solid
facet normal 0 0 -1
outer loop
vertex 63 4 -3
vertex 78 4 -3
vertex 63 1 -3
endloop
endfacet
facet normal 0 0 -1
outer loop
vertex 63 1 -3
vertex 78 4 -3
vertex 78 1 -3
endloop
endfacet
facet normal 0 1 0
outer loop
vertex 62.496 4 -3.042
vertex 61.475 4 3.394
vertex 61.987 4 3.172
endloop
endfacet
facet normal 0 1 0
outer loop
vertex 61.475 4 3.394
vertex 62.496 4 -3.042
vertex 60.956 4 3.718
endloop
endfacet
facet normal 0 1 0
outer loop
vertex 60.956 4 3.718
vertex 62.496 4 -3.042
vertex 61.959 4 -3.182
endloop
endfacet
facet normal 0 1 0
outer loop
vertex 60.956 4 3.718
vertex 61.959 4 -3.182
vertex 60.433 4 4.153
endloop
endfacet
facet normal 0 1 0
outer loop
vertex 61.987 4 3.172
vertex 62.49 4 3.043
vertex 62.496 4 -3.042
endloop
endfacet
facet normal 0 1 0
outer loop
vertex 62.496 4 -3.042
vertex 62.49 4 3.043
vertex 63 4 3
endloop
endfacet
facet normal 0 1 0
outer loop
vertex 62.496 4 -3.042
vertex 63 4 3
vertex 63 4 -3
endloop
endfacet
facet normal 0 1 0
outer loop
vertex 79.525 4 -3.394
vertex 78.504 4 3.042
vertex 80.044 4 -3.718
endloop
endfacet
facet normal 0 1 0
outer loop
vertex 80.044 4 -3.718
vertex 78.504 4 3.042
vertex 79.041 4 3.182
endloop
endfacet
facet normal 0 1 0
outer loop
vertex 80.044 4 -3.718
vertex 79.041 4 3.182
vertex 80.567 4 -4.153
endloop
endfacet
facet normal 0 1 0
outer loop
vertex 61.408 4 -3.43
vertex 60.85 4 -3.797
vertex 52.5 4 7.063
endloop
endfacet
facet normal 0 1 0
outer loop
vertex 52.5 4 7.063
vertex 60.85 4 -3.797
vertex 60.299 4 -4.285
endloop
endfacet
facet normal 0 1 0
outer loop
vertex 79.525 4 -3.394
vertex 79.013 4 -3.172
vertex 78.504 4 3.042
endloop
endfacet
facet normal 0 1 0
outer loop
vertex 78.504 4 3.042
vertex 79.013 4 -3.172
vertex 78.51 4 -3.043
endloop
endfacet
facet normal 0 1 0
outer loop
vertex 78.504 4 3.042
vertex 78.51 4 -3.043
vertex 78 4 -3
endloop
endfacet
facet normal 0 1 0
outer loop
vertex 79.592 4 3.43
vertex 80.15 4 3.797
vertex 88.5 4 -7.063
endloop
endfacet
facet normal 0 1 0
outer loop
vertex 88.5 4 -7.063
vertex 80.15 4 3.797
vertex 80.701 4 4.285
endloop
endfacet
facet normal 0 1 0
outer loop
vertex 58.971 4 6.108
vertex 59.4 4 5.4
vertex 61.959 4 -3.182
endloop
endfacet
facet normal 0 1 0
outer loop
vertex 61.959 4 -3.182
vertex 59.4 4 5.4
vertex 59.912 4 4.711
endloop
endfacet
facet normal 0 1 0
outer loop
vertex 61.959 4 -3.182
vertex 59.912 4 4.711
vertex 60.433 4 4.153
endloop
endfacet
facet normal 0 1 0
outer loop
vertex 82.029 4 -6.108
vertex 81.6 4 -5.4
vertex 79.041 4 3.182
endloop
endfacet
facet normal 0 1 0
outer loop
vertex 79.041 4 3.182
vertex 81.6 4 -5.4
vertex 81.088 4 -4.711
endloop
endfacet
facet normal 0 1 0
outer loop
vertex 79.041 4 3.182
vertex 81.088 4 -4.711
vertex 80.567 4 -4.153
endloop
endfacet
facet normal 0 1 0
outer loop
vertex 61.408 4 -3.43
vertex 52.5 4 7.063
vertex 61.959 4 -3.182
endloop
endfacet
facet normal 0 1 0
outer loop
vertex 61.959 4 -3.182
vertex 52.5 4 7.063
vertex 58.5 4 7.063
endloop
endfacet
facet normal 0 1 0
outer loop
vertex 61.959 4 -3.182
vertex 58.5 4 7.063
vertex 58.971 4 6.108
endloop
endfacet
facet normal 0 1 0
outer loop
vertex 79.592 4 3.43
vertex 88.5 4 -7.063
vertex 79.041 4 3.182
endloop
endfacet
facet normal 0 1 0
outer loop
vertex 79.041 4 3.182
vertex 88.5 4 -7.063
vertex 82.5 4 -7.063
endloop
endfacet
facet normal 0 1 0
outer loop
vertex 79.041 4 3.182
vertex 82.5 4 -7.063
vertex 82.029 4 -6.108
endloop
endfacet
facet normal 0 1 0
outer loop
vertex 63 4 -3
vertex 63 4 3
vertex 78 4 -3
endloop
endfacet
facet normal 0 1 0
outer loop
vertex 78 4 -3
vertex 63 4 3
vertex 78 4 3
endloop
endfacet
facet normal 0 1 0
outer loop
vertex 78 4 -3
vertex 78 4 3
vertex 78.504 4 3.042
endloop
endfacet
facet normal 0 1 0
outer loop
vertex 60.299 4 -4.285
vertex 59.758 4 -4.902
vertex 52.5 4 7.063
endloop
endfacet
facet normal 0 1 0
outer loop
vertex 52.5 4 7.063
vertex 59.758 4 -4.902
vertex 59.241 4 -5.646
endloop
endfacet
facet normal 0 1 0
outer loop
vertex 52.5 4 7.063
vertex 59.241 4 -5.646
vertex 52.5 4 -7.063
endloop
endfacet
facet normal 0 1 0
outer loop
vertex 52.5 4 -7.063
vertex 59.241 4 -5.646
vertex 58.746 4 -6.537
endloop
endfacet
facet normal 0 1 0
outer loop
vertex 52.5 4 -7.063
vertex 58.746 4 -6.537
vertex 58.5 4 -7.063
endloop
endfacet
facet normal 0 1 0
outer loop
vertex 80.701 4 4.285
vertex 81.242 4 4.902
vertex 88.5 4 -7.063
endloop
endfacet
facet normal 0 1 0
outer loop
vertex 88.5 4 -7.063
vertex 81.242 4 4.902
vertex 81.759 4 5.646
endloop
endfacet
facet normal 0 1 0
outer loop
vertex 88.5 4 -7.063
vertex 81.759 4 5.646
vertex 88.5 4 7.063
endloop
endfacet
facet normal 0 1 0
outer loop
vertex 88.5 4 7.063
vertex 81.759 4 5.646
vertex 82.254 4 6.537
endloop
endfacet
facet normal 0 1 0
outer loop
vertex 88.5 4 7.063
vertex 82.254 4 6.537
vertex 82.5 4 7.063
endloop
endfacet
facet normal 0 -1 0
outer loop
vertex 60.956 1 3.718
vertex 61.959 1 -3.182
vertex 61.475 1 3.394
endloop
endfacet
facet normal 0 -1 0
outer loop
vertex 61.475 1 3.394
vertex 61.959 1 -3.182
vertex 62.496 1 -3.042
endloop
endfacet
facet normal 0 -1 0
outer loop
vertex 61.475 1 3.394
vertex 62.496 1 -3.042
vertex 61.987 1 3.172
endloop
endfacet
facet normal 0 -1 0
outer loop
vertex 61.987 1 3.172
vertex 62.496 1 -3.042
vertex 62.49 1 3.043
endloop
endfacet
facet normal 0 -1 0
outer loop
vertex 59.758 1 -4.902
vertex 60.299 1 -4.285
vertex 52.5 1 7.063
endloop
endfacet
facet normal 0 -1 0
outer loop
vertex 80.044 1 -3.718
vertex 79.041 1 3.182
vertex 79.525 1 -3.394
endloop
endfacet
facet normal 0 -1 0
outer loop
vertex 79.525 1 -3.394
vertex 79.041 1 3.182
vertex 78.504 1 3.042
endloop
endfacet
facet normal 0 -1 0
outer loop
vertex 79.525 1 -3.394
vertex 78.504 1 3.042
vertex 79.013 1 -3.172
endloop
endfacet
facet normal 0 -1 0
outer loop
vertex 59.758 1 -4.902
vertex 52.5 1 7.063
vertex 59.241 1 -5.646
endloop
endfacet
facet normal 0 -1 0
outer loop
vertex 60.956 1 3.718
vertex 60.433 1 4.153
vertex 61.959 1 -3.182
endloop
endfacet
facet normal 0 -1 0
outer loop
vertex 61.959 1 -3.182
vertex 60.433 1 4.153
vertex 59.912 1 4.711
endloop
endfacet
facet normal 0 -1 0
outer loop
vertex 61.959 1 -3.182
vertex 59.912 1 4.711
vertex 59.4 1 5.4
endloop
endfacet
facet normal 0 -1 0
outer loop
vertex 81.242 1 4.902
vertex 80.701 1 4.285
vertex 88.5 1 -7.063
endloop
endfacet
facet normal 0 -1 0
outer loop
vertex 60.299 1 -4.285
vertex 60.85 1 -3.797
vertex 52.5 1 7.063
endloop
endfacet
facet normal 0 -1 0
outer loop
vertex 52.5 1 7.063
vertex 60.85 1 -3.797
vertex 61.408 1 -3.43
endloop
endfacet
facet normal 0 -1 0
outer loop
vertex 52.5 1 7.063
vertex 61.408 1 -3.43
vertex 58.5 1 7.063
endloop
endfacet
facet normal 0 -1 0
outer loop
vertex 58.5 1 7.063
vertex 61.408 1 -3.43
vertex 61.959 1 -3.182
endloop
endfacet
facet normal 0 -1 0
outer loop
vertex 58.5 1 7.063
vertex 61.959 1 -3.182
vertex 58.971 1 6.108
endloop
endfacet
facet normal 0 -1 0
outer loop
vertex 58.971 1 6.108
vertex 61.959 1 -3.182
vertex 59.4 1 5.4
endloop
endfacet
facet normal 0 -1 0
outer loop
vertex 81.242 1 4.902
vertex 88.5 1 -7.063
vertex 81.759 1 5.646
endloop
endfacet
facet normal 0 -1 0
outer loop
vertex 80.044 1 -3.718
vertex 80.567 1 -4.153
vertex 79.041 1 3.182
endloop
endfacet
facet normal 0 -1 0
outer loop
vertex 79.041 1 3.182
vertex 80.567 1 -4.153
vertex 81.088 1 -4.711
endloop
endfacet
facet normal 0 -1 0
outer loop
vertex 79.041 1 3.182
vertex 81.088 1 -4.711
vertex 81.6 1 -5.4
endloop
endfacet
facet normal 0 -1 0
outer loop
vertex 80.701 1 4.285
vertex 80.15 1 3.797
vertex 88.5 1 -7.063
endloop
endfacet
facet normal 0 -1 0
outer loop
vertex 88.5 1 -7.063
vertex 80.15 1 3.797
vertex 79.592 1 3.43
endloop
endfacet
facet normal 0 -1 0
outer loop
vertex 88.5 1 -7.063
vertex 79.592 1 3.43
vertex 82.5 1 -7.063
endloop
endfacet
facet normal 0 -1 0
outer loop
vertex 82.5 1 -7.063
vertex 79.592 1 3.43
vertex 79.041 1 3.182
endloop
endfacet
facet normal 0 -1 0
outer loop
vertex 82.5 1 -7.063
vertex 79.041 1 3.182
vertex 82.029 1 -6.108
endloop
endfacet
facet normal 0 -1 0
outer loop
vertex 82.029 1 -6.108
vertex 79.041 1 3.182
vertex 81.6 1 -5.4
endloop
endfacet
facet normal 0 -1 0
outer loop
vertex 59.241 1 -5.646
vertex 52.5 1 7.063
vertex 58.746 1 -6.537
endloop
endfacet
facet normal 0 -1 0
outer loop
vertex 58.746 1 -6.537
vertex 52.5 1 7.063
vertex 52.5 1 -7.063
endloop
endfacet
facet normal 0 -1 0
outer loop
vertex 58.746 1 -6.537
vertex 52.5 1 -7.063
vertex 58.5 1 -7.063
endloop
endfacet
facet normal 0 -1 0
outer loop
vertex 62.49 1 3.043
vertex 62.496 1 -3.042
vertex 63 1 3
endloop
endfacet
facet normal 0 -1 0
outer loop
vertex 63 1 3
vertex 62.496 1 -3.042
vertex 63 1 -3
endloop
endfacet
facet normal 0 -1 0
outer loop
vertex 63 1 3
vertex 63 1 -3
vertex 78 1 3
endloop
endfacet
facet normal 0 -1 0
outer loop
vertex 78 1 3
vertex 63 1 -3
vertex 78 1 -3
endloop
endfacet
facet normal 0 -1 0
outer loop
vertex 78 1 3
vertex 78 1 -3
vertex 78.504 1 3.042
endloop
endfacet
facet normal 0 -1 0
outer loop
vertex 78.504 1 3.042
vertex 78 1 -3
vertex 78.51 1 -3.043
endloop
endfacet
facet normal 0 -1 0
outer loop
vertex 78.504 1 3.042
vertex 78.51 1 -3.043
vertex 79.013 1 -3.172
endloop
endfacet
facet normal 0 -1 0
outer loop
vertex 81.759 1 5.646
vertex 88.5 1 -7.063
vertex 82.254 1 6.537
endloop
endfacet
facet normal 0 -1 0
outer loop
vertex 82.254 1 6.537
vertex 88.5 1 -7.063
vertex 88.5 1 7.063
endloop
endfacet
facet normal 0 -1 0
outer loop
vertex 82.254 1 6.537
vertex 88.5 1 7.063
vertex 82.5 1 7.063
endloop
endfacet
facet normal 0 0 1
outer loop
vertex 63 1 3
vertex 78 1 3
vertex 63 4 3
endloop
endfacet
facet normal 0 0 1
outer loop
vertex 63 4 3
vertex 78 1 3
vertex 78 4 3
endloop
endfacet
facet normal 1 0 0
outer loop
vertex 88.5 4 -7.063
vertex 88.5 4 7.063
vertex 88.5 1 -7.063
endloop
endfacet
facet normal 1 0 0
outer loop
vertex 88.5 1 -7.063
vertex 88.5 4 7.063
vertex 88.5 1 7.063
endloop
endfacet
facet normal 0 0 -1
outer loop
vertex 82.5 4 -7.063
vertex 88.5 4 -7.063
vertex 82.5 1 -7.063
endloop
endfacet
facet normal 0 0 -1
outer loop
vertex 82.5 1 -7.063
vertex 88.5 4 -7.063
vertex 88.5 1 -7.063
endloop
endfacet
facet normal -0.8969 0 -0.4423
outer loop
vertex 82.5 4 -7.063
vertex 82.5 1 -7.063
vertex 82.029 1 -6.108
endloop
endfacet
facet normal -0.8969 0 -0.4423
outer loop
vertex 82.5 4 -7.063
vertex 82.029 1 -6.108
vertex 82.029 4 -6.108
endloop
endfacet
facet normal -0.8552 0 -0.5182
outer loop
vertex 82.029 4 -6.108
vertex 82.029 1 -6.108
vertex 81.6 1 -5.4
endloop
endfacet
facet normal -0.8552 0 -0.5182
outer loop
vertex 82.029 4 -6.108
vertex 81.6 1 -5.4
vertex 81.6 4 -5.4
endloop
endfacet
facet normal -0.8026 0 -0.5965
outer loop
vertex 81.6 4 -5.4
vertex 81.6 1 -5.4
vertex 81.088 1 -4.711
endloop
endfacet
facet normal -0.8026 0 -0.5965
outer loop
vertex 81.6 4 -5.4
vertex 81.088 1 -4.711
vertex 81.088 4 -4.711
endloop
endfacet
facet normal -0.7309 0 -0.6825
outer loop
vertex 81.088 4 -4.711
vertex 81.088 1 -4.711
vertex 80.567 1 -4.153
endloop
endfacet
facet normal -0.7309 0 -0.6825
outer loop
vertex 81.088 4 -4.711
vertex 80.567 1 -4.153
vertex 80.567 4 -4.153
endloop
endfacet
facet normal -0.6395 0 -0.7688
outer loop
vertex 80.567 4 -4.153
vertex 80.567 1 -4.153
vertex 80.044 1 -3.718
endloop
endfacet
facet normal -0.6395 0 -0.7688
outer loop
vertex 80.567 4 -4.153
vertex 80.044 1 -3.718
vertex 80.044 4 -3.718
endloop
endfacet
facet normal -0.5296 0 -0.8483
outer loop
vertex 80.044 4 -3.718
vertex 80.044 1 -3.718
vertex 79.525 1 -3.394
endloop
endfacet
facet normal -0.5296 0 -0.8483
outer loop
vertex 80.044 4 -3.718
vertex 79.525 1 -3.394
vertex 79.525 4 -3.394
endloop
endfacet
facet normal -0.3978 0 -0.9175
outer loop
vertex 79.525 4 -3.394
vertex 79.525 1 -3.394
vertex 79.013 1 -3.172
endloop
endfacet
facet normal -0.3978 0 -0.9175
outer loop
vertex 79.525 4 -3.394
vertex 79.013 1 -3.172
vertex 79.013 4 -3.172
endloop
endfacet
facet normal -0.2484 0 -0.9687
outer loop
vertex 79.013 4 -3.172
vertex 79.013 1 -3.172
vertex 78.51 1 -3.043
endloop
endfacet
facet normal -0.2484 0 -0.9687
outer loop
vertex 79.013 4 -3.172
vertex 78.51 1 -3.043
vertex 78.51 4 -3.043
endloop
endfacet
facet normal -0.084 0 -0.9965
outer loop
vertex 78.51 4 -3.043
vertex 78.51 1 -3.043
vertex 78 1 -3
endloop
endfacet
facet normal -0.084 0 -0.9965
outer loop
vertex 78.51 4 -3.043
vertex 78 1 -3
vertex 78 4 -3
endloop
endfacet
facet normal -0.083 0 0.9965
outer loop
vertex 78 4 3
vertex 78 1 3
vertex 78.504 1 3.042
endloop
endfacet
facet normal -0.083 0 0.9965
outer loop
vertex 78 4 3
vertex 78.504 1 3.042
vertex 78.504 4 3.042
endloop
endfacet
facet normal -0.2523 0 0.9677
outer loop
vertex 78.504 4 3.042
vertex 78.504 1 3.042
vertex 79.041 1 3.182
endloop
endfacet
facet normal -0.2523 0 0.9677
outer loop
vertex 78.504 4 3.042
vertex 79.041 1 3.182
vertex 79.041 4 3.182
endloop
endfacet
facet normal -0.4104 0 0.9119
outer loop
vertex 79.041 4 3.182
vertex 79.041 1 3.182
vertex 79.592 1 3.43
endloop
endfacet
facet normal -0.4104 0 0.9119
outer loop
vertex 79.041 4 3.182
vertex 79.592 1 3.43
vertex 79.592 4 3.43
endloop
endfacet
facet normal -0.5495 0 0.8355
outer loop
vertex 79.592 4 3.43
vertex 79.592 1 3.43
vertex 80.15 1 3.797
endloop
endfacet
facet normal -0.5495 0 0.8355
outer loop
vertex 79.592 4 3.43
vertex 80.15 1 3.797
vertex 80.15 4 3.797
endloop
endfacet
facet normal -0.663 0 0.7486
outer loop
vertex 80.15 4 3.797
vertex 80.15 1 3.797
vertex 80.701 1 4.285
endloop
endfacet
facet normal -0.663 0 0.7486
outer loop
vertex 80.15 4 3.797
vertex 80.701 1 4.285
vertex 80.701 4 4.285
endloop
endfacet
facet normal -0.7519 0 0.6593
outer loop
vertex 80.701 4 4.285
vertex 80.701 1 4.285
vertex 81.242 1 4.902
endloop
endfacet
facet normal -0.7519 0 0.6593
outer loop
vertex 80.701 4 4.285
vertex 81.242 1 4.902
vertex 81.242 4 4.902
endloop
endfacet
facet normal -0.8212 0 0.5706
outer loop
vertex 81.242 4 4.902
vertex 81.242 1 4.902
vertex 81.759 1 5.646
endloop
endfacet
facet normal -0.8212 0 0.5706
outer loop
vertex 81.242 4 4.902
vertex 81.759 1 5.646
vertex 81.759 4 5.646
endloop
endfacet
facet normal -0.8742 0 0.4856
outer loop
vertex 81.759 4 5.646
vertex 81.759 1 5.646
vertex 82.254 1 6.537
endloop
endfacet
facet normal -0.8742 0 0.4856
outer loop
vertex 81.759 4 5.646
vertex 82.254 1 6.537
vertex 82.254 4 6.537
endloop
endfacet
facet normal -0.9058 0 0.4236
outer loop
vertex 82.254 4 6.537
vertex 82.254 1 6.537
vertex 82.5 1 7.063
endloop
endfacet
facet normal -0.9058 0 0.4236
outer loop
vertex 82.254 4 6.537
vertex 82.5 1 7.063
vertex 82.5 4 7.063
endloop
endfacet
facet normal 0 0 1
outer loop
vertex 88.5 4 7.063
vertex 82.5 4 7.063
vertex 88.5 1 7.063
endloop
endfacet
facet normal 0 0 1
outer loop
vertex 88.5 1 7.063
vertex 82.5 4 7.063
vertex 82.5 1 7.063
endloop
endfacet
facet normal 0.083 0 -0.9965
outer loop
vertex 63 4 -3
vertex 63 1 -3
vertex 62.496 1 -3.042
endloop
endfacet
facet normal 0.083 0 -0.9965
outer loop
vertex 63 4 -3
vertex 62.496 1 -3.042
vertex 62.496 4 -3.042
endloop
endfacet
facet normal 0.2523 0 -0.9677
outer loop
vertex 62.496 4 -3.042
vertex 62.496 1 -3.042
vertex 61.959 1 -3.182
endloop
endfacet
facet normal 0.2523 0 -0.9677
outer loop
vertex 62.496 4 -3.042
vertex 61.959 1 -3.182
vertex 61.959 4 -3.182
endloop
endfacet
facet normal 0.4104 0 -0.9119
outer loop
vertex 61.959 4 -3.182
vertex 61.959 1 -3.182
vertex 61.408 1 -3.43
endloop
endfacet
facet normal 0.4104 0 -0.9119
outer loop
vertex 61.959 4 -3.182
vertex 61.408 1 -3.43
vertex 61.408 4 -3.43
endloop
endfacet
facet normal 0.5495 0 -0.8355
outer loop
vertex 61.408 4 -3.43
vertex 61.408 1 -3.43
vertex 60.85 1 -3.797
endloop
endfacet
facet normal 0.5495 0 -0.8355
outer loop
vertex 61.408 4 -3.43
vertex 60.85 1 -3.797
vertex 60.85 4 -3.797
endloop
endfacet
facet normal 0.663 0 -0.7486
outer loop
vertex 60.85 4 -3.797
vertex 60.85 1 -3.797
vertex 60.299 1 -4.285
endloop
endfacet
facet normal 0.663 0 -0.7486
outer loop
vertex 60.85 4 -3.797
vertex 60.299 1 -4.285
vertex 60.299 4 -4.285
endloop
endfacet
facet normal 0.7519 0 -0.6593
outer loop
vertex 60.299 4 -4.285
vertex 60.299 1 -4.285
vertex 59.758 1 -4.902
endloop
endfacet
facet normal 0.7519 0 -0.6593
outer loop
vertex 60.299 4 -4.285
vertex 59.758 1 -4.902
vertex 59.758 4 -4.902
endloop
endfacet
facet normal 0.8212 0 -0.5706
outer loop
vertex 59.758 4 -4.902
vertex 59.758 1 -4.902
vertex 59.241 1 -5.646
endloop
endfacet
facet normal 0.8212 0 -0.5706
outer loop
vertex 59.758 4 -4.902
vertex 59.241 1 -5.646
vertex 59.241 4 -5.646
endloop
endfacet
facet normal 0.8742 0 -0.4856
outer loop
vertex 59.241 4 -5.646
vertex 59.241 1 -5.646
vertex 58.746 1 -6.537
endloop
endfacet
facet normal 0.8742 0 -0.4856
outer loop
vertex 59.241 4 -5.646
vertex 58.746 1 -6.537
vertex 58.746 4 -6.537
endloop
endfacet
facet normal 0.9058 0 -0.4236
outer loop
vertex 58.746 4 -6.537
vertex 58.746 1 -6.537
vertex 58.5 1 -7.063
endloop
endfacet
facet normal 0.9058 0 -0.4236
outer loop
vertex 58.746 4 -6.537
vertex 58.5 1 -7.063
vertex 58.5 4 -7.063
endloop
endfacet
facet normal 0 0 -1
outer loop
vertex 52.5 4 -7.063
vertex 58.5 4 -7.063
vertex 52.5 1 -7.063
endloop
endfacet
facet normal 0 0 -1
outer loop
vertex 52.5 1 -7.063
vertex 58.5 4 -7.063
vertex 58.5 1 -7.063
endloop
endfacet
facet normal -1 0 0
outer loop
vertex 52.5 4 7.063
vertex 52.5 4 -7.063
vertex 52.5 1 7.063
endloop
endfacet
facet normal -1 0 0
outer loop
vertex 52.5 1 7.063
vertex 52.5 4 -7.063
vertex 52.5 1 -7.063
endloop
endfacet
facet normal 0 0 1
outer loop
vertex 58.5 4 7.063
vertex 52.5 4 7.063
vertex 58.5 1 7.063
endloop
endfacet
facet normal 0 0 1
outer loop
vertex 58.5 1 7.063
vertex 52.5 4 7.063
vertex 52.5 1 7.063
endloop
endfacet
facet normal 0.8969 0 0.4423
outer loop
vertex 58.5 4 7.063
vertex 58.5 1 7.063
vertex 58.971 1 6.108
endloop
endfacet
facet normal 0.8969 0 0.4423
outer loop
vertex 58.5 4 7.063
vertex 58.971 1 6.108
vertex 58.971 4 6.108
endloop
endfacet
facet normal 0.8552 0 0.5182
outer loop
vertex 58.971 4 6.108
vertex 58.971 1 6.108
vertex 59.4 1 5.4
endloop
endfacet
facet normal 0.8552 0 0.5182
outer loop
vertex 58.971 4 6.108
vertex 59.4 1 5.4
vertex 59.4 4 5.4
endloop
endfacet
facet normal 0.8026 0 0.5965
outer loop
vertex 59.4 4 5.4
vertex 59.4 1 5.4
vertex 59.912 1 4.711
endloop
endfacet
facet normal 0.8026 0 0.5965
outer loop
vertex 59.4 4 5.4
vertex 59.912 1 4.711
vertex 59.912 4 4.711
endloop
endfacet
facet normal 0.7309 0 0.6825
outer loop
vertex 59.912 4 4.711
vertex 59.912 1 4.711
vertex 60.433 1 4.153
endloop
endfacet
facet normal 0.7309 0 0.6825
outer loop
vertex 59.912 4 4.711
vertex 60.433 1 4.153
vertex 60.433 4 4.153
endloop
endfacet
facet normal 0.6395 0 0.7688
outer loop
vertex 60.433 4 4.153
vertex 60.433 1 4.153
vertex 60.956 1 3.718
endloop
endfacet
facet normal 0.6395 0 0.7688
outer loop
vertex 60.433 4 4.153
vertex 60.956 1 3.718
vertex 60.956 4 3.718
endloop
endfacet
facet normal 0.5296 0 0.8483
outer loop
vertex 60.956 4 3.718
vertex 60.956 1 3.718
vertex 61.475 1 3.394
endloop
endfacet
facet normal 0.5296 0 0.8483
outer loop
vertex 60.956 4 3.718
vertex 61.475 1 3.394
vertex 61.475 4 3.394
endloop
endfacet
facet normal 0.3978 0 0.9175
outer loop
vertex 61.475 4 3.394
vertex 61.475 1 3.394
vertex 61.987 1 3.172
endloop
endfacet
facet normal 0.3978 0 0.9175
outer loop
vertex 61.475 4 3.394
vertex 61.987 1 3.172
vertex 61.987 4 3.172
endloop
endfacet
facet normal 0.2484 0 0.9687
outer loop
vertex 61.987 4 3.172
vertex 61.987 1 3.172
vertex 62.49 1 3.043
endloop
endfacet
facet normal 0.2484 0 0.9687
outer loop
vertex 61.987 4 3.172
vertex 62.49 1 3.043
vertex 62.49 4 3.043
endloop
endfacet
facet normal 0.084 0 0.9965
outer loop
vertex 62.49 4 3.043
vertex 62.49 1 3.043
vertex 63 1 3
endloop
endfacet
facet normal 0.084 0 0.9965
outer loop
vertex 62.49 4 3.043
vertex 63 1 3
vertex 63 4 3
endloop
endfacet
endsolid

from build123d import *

# Parameters (mm, degrees)
BOSS_EXTRUDE1_DEPTH         = 5
MIRROR1_DEPTH               = 5
SCALE1_SCALE                = 0.6
SCALE2_SCALE_X              = 0.5
SCALE2_SCALE_Y              = 1
SCALE2_SCALE_Z              = 1
SKETCH2_W                   = 9
SKETCH2_H                   = 6
CUT_EXTRUDE1_DEPTH          = 98.801494894
BODY_MOVE_COPY1_START       = 1
BODY_MOVE_COPY1_DEPTH       = 3
BODY_MOVE_COPY1_2_OUTLINE_W = 9
BODY_MOVE_COPY1_2_OUTLINE_H = 6
BODY_MOVE_COPY1_2_DEPTH     = 3


# Read off the part's stored shape, not the designer's step: Mirror1, Body-Move/Copy1
with BuildPart() as part:
    # Sketch1 → Boss-Extrude1 (new body)
    with BuildSketch(Plane(origin=(0, 0, 0), x_dir=(1, 0, 0), z_dir=(0, 1, 0))):
        with BuildLine():
            Line((0, 0), (0, 11.771243445))
            Line((0, 11.771243445), (20, 11.771243445))
            ThreePointArc((20, 11.771243445), (26.771243445, 6.771243445), (35, 5))
            Line((35, 5), (75, 5))
            Line((75, 5), (75, 0))
            Line((75, 0), (0, 0))
        make_face()
    extrude(amount=BOSS_EXTRUDE1_DEPTH)

    # Mirror1 outline → Mirror1 (add)
    with BuildSketch(Plane(origin=(0, 0, 0), x_dir=(1, 0, 0), z_dir=(0, 1, 0))):
        with BuildLine():
            Line((115, 5), (75, 5))
            Line((75, 5), (75, 0))
            Line((75, 0), (0, 0))
            Line((0, 0), (0, -11.771243445))
            Line((0, -11.771243445), (20, -11.771243445))
            ThreePointArc((20, -11.771243445), (26.771243445, -6.771243445), (35, -5))
            Line((35, -5), (115, -5))
            ThreePointArc((115, -5), (123.228756555, -6.771243445), (130, -11.771243445))
            Line((130, -11.771243445), (150, -11.771243445))
            Line((150, -11.771243445), (150, 11.771243445))
            Line((150, 11.771243445), (130, 11.771243445))
            ThreePointArc((130, 11.771243445), (123.228756555, 6.771243445), (115, 5))
        make_face()
    extrude(amount=MIRROR1_DEPTH)


with BuildPart() as part_1:
    # Scale1: scaled about (75, 2.5, 0)
    add(part.part.scale(SCALE1_SCALE).moved(Location((30, 1, 0))))


with BuildPart() as part_2:
    # Scale2: scaled about (75, 2.5, 0)
    add(part_1.part.scale((SCALE2_SCALE_X, SCALE2_SCALE_Y, SCALE2_SCALE_Z), about=(75, 2.5, 0)))

    # Sketch2 → Cut-Extrude1 (cut, through all)
    with BuildSketch(Plane(origin=(0, 4, 0), x_dir=(1, 0, 0), z_dir=(0, 1, 0))):
        with Locations((70.5, 0)):
            Rectangle(SKETCH2_W, SKETCH2_H)
    extrude(amount=-CUT_EXTRUDE1_DEPTH, mode=Mode.SUBTRACT)


with BuildPart() as cut_extrude1_piece_1:
    # of the separate pieces the step leaves, piece 1, a body of its own (cut_extrude1_pieces)
    add(part_2.part.solids().sort_by_distance((75, 1, 3))[0])

    # Body-Move/Copy1 outline → Body-Move/Copy1 (cut)
    with BuildSketch(Plane(origin=(0, 0, 0), x_dir=(1, 0, 0), z_dir=(0, 1, 0)).offset(BODY_MOVE_COPY1_START)):
        with BuildLine():
            add(Edge.make_bspline(
                [(91.5, 7.062746067), (90.655623636, 5.147880462), (89.601040636, 3.949624901), (88.5, 3.381049961)],
                knots=[0.344491118, 0.344491118, 0.344491118, 0.344491118, 0.443649167, 0.443649167, 0.443649167, 0.443649167], degree=3, weights=[0.571428571, 0.621399531, 0.697590007, 0.8]))
            Line((88.5, 3.381049961), (88.5, -3.381049961))
            add(Edge.make_bspline(
                [(88.5, -3.381049961), (89.601040636, -3.949624901), (90.655623636, -5.147880462), (91.5, -7.062746067)],
                knots=[0.056350833, 0.056350833, 0.056350833, 0.056350833, 0.155508882, 0.155508882, 0.155508882, 0.155508882], degree=3, weights=[0.8, 0.697590007, 0.621399531, 0.571428571]))
            Line((91.5, -7.062746067), (97.5, -7.062746067))
            Line((97.5, -7.062746067), (97.5, 7.062746067))
            Line((97.5, 7.062746067), (91.5, 7.062746067))
        make_face()
    extrude(amount=BODY_MOVE_COPY1_DEPTH, mode=Mode.SUBTRACT)

    # Body-Move_Copy1 2 outline → Body-Move_Copy1 2 (add)
    with BuildSketch(Plane(origin=(0, 0, 0), x_dir=(1, 0, 0), z_dir=(0, 1, 0)).offset(BODY_MOVE_COPY1_START)):
        with BuildLine():
            Line((88.5, 7.062746067), (82.5, 7.062746067))
            add(Edge.make_bspline(
                [(82.5, 7.062746067), (81.233643288, 4.190918983), (79.569499126, 3), (78, 3)],
                knots=[0.344491118, 0.344491118, 0.344491118, 0.344491118, 0.5, 0.5, 0.5, 0.5], degree=3, weights=[0.571428571, 0.649797681, 0.792654824, 1]))
            Line((78, 3), (87, 3))
            add(Edge.make_bspline(
                [(88.5, 3.381049961), (87.991386346, 3.118403), (87.487429398, 3), (87, 3)],
                knots=[0.443649167, 0.443649167, 0.443649167, 0.443649167, 0.5, 0.5, 0.5, 0.5], degree=3, weights=[0.8, 0.85819889, 0.924865556, 1]))
            Line((88.5, 3.381049961), (88.5, 7.062746067))
        make_face()
        with Locations((70.5, 0)):
            Rectangle(BODY_MOVE_COPY1_2_OUTLINE_W, BODY_MOVE_COPY1_2_OUTLINE_H)
        with BuildLine():
            Line((88.5, -7.062746067), (88.5, -3.381049961))
            add(Edge.make_bspline(
                [(87, -3), (87.487429398, -3), (87.991386346, -3.118403), (88.5, -3.381049961)],
                knots=[0, 0, 0, 0, 0.056350833, 0.056350833, 0.056350833, 0.056350833], degree=3, weights=[1, 0.924865556, 0.85819889, 0.8]))
            Line((87, -3), (78, -3))
            add(Edge.make_bspline(
                [(78, -3), (79.569499126, -3), (81.233643288, -4.190918983), (82.5, -7.062746067)],
                knots=[0, 0, 0, 0, 0.155508882, 0.155508882, 0.155508882, 0.155508882], degree=3, weights=[1, 0.792654824, 0.649797681, 0.571428571]))
            Line((82.5, -7.062746067), (88.5, -7.062746067))
        make_face()
    extrude(amount=BODY_MOVE_COPY1_2_DEPTH)


with BuildPart() as cut_extrude1_piece_2:
    # of the separate pieces the step leaves, piece 2, a body of its own (cut_extrude1_pieces)
    add(part_2.part.solids().sort_by_distance((52.5, 1, -7.062746067))[0])


with BuildPart() as cut_extrude1_piece_1_1:
    add(cut_extrude1_piece_1.part)

    # Combine1: union Cut-Extrude1 piece 2
    add(cut_extrude1_piece_2.part)


solid = cut_extrude1_piece_1_1.part
